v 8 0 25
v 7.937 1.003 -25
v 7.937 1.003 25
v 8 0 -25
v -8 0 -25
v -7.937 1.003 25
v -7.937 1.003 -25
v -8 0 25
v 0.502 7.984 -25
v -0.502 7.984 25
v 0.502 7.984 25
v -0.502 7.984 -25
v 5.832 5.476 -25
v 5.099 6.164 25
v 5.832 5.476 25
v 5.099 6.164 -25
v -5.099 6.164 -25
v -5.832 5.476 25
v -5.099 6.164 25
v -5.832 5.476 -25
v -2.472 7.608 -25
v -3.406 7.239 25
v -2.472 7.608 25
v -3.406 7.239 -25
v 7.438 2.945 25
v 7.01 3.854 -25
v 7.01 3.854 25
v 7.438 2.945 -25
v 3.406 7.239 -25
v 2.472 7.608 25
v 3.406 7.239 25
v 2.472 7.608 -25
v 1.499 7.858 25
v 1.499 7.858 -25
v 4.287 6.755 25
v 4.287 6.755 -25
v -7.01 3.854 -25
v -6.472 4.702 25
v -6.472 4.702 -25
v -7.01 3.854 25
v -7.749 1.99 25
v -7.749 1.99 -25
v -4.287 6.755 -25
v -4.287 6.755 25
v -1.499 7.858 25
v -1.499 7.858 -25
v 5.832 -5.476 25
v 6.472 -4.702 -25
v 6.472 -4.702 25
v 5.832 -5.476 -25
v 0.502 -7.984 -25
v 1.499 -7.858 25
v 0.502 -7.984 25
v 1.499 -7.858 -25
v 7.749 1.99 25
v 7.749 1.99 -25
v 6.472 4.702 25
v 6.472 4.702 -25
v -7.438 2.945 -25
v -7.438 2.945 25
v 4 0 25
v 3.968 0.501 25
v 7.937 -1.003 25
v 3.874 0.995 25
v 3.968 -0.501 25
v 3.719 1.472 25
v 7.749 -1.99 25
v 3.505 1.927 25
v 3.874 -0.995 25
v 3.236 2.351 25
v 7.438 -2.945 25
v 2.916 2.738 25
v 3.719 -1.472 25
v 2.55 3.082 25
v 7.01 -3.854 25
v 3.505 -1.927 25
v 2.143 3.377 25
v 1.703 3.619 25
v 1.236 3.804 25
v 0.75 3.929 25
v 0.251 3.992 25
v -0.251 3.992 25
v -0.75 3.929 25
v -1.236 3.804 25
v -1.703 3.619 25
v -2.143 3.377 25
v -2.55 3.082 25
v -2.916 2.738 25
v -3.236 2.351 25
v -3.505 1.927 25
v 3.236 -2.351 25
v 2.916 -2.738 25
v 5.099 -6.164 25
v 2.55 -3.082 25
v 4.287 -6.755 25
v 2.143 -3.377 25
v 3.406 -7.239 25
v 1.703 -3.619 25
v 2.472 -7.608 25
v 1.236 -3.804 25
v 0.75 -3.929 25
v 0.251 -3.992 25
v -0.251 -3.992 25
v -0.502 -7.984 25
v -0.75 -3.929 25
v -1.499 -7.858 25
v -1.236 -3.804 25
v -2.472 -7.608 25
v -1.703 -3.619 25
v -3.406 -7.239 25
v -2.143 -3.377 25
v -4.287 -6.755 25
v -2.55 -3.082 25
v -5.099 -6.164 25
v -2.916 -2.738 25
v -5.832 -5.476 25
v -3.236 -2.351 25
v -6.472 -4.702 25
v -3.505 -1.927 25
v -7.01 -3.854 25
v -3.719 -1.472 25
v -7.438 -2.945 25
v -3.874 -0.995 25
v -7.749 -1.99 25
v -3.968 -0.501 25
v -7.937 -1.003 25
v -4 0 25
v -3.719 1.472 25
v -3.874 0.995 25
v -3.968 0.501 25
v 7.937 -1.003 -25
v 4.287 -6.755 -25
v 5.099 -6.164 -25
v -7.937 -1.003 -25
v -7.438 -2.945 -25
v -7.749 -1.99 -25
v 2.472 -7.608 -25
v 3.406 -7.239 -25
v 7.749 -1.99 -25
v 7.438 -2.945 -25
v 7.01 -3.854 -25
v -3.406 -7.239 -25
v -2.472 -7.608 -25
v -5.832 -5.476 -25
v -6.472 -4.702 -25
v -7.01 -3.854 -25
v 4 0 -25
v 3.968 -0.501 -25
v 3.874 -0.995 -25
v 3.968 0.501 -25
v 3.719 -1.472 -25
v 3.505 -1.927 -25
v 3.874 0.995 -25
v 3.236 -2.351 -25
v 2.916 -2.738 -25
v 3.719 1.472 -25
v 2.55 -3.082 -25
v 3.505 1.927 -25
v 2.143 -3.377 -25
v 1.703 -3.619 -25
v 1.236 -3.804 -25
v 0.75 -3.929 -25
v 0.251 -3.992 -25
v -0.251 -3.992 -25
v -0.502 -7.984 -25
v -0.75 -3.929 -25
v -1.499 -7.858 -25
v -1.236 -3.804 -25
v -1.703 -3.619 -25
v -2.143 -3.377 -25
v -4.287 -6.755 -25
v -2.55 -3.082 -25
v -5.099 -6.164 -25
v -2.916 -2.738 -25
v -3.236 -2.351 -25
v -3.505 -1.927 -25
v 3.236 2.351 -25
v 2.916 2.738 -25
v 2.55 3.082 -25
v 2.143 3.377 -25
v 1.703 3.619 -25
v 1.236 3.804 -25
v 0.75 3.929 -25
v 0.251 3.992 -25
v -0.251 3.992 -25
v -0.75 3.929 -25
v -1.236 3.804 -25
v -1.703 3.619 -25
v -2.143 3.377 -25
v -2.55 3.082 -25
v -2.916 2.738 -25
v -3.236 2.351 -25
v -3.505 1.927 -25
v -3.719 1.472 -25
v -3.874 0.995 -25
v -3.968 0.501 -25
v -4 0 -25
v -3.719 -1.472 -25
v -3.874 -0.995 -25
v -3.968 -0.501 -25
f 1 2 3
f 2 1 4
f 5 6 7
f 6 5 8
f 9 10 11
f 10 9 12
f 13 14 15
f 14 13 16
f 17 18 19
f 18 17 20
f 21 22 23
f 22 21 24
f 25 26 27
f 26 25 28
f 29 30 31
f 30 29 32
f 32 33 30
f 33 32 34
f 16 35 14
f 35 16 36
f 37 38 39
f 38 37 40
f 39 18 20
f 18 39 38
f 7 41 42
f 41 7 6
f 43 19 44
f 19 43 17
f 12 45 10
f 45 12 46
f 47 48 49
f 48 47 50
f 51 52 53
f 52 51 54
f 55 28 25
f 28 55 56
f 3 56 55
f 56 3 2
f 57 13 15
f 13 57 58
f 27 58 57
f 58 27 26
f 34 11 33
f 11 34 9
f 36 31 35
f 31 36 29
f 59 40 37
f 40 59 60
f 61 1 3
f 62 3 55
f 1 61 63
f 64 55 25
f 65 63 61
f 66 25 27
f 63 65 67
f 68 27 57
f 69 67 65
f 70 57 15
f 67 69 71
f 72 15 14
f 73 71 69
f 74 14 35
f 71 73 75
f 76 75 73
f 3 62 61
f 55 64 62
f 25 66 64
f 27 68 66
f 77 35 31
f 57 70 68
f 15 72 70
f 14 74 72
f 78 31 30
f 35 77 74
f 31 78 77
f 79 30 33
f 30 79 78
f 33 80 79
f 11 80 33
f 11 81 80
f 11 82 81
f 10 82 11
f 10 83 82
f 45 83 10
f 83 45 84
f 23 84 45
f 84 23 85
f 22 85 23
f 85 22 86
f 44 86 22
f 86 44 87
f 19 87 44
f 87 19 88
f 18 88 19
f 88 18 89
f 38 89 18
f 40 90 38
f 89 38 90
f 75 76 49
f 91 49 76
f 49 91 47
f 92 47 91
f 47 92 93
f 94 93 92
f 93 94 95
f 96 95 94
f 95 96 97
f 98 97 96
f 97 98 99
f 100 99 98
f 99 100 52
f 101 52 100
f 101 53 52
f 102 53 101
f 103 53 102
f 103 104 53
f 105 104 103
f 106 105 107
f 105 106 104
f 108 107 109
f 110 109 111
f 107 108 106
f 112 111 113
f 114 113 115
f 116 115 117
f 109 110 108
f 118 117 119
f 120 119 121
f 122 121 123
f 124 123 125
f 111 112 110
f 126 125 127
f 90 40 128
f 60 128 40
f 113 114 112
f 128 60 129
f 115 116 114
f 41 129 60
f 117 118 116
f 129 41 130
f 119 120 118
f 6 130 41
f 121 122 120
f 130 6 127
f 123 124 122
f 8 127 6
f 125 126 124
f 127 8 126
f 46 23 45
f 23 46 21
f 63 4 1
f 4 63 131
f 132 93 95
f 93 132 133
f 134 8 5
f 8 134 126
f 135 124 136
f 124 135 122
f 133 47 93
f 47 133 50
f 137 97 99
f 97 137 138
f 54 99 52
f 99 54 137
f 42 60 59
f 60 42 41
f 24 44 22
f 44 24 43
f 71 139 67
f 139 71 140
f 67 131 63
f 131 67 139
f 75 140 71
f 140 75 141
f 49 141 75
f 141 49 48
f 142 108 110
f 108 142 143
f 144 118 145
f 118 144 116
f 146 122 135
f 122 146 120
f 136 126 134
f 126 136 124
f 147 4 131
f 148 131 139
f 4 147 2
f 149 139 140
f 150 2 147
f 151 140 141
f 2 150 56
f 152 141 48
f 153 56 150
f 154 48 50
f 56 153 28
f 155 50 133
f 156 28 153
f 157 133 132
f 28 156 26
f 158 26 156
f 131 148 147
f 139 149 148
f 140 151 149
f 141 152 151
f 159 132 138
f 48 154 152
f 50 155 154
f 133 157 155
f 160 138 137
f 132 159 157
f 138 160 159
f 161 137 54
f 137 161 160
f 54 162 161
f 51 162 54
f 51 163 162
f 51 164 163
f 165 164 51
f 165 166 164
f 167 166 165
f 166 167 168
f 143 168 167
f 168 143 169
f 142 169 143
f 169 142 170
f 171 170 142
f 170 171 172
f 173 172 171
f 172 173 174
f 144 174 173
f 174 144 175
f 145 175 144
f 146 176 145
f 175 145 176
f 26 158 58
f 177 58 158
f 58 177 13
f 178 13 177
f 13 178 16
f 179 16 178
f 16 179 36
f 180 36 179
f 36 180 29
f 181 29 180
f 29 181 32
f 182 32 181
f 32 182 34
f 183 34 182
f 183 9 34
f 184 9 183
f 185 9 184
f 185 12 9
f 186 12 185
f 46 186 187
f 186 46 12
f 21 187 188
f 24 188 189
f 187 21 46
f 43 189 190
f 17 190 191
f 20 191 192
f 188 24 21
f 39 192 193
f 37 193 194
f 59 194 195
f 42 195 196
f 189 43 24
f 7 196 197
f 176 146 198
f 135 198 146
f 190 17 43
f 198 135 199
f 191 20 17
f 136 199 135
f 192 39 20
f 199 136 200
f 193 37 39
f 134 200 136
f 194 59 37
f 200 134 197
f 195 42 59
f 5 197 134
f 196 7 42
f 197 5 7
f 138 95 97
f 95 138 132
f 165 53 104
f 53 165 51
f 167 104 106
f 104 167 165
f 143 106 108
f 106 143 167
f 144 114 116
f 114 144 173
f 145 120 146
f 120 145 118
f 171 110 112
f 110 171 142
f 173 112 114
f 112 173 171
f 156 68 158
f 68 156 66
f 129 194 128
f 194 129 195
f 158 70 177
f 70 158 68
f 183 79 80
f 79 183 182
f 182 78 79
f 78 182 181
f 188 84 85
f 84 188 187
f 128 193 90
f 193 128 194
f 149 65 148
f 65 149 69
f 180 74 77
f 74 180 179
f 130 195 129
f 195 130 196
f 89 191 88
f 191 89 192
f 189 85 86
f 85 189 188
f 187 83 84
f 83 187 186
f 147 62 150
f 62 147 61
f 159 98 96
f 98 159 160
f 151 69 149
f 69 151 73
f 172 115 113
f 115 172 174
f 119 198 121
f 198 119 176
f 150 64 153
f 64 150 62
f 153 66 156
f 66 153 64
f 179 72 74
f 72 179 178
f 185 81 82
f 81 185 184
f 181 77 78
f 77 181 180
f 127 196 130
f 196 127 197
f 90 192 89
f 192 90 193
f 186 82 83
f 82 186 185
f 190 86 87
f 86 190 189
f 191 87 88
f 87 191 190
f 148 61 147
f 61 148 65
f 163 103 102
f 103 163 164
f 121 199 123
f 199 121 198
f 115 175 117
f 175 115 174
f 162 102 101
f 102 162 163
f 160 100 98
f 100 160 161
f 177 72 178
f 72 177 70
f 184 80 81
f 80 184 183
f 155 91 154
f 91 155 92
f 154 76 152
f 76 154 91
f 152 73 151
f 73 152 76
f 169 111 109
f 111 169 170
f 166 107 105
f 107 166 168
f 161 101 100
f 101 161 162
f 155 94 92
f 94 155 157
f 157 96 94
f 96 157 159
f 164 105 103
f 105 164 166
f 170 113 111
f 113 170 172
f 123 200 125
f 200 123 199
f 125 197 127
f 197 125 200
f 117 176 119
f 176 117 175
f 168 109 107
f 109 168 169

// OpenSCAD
$fn = 50;


difference() {
	union() {
		translate(v = [0, 0, -25.0000000000]) {
			cylinder(h = 50, r = 8.0000000000);
		}
	}
	union() {
		translate(v = [0, 0, -100.0000000000]) {
			cylinder(h = 200, r = 4.0000000000);
		}
	}
}
